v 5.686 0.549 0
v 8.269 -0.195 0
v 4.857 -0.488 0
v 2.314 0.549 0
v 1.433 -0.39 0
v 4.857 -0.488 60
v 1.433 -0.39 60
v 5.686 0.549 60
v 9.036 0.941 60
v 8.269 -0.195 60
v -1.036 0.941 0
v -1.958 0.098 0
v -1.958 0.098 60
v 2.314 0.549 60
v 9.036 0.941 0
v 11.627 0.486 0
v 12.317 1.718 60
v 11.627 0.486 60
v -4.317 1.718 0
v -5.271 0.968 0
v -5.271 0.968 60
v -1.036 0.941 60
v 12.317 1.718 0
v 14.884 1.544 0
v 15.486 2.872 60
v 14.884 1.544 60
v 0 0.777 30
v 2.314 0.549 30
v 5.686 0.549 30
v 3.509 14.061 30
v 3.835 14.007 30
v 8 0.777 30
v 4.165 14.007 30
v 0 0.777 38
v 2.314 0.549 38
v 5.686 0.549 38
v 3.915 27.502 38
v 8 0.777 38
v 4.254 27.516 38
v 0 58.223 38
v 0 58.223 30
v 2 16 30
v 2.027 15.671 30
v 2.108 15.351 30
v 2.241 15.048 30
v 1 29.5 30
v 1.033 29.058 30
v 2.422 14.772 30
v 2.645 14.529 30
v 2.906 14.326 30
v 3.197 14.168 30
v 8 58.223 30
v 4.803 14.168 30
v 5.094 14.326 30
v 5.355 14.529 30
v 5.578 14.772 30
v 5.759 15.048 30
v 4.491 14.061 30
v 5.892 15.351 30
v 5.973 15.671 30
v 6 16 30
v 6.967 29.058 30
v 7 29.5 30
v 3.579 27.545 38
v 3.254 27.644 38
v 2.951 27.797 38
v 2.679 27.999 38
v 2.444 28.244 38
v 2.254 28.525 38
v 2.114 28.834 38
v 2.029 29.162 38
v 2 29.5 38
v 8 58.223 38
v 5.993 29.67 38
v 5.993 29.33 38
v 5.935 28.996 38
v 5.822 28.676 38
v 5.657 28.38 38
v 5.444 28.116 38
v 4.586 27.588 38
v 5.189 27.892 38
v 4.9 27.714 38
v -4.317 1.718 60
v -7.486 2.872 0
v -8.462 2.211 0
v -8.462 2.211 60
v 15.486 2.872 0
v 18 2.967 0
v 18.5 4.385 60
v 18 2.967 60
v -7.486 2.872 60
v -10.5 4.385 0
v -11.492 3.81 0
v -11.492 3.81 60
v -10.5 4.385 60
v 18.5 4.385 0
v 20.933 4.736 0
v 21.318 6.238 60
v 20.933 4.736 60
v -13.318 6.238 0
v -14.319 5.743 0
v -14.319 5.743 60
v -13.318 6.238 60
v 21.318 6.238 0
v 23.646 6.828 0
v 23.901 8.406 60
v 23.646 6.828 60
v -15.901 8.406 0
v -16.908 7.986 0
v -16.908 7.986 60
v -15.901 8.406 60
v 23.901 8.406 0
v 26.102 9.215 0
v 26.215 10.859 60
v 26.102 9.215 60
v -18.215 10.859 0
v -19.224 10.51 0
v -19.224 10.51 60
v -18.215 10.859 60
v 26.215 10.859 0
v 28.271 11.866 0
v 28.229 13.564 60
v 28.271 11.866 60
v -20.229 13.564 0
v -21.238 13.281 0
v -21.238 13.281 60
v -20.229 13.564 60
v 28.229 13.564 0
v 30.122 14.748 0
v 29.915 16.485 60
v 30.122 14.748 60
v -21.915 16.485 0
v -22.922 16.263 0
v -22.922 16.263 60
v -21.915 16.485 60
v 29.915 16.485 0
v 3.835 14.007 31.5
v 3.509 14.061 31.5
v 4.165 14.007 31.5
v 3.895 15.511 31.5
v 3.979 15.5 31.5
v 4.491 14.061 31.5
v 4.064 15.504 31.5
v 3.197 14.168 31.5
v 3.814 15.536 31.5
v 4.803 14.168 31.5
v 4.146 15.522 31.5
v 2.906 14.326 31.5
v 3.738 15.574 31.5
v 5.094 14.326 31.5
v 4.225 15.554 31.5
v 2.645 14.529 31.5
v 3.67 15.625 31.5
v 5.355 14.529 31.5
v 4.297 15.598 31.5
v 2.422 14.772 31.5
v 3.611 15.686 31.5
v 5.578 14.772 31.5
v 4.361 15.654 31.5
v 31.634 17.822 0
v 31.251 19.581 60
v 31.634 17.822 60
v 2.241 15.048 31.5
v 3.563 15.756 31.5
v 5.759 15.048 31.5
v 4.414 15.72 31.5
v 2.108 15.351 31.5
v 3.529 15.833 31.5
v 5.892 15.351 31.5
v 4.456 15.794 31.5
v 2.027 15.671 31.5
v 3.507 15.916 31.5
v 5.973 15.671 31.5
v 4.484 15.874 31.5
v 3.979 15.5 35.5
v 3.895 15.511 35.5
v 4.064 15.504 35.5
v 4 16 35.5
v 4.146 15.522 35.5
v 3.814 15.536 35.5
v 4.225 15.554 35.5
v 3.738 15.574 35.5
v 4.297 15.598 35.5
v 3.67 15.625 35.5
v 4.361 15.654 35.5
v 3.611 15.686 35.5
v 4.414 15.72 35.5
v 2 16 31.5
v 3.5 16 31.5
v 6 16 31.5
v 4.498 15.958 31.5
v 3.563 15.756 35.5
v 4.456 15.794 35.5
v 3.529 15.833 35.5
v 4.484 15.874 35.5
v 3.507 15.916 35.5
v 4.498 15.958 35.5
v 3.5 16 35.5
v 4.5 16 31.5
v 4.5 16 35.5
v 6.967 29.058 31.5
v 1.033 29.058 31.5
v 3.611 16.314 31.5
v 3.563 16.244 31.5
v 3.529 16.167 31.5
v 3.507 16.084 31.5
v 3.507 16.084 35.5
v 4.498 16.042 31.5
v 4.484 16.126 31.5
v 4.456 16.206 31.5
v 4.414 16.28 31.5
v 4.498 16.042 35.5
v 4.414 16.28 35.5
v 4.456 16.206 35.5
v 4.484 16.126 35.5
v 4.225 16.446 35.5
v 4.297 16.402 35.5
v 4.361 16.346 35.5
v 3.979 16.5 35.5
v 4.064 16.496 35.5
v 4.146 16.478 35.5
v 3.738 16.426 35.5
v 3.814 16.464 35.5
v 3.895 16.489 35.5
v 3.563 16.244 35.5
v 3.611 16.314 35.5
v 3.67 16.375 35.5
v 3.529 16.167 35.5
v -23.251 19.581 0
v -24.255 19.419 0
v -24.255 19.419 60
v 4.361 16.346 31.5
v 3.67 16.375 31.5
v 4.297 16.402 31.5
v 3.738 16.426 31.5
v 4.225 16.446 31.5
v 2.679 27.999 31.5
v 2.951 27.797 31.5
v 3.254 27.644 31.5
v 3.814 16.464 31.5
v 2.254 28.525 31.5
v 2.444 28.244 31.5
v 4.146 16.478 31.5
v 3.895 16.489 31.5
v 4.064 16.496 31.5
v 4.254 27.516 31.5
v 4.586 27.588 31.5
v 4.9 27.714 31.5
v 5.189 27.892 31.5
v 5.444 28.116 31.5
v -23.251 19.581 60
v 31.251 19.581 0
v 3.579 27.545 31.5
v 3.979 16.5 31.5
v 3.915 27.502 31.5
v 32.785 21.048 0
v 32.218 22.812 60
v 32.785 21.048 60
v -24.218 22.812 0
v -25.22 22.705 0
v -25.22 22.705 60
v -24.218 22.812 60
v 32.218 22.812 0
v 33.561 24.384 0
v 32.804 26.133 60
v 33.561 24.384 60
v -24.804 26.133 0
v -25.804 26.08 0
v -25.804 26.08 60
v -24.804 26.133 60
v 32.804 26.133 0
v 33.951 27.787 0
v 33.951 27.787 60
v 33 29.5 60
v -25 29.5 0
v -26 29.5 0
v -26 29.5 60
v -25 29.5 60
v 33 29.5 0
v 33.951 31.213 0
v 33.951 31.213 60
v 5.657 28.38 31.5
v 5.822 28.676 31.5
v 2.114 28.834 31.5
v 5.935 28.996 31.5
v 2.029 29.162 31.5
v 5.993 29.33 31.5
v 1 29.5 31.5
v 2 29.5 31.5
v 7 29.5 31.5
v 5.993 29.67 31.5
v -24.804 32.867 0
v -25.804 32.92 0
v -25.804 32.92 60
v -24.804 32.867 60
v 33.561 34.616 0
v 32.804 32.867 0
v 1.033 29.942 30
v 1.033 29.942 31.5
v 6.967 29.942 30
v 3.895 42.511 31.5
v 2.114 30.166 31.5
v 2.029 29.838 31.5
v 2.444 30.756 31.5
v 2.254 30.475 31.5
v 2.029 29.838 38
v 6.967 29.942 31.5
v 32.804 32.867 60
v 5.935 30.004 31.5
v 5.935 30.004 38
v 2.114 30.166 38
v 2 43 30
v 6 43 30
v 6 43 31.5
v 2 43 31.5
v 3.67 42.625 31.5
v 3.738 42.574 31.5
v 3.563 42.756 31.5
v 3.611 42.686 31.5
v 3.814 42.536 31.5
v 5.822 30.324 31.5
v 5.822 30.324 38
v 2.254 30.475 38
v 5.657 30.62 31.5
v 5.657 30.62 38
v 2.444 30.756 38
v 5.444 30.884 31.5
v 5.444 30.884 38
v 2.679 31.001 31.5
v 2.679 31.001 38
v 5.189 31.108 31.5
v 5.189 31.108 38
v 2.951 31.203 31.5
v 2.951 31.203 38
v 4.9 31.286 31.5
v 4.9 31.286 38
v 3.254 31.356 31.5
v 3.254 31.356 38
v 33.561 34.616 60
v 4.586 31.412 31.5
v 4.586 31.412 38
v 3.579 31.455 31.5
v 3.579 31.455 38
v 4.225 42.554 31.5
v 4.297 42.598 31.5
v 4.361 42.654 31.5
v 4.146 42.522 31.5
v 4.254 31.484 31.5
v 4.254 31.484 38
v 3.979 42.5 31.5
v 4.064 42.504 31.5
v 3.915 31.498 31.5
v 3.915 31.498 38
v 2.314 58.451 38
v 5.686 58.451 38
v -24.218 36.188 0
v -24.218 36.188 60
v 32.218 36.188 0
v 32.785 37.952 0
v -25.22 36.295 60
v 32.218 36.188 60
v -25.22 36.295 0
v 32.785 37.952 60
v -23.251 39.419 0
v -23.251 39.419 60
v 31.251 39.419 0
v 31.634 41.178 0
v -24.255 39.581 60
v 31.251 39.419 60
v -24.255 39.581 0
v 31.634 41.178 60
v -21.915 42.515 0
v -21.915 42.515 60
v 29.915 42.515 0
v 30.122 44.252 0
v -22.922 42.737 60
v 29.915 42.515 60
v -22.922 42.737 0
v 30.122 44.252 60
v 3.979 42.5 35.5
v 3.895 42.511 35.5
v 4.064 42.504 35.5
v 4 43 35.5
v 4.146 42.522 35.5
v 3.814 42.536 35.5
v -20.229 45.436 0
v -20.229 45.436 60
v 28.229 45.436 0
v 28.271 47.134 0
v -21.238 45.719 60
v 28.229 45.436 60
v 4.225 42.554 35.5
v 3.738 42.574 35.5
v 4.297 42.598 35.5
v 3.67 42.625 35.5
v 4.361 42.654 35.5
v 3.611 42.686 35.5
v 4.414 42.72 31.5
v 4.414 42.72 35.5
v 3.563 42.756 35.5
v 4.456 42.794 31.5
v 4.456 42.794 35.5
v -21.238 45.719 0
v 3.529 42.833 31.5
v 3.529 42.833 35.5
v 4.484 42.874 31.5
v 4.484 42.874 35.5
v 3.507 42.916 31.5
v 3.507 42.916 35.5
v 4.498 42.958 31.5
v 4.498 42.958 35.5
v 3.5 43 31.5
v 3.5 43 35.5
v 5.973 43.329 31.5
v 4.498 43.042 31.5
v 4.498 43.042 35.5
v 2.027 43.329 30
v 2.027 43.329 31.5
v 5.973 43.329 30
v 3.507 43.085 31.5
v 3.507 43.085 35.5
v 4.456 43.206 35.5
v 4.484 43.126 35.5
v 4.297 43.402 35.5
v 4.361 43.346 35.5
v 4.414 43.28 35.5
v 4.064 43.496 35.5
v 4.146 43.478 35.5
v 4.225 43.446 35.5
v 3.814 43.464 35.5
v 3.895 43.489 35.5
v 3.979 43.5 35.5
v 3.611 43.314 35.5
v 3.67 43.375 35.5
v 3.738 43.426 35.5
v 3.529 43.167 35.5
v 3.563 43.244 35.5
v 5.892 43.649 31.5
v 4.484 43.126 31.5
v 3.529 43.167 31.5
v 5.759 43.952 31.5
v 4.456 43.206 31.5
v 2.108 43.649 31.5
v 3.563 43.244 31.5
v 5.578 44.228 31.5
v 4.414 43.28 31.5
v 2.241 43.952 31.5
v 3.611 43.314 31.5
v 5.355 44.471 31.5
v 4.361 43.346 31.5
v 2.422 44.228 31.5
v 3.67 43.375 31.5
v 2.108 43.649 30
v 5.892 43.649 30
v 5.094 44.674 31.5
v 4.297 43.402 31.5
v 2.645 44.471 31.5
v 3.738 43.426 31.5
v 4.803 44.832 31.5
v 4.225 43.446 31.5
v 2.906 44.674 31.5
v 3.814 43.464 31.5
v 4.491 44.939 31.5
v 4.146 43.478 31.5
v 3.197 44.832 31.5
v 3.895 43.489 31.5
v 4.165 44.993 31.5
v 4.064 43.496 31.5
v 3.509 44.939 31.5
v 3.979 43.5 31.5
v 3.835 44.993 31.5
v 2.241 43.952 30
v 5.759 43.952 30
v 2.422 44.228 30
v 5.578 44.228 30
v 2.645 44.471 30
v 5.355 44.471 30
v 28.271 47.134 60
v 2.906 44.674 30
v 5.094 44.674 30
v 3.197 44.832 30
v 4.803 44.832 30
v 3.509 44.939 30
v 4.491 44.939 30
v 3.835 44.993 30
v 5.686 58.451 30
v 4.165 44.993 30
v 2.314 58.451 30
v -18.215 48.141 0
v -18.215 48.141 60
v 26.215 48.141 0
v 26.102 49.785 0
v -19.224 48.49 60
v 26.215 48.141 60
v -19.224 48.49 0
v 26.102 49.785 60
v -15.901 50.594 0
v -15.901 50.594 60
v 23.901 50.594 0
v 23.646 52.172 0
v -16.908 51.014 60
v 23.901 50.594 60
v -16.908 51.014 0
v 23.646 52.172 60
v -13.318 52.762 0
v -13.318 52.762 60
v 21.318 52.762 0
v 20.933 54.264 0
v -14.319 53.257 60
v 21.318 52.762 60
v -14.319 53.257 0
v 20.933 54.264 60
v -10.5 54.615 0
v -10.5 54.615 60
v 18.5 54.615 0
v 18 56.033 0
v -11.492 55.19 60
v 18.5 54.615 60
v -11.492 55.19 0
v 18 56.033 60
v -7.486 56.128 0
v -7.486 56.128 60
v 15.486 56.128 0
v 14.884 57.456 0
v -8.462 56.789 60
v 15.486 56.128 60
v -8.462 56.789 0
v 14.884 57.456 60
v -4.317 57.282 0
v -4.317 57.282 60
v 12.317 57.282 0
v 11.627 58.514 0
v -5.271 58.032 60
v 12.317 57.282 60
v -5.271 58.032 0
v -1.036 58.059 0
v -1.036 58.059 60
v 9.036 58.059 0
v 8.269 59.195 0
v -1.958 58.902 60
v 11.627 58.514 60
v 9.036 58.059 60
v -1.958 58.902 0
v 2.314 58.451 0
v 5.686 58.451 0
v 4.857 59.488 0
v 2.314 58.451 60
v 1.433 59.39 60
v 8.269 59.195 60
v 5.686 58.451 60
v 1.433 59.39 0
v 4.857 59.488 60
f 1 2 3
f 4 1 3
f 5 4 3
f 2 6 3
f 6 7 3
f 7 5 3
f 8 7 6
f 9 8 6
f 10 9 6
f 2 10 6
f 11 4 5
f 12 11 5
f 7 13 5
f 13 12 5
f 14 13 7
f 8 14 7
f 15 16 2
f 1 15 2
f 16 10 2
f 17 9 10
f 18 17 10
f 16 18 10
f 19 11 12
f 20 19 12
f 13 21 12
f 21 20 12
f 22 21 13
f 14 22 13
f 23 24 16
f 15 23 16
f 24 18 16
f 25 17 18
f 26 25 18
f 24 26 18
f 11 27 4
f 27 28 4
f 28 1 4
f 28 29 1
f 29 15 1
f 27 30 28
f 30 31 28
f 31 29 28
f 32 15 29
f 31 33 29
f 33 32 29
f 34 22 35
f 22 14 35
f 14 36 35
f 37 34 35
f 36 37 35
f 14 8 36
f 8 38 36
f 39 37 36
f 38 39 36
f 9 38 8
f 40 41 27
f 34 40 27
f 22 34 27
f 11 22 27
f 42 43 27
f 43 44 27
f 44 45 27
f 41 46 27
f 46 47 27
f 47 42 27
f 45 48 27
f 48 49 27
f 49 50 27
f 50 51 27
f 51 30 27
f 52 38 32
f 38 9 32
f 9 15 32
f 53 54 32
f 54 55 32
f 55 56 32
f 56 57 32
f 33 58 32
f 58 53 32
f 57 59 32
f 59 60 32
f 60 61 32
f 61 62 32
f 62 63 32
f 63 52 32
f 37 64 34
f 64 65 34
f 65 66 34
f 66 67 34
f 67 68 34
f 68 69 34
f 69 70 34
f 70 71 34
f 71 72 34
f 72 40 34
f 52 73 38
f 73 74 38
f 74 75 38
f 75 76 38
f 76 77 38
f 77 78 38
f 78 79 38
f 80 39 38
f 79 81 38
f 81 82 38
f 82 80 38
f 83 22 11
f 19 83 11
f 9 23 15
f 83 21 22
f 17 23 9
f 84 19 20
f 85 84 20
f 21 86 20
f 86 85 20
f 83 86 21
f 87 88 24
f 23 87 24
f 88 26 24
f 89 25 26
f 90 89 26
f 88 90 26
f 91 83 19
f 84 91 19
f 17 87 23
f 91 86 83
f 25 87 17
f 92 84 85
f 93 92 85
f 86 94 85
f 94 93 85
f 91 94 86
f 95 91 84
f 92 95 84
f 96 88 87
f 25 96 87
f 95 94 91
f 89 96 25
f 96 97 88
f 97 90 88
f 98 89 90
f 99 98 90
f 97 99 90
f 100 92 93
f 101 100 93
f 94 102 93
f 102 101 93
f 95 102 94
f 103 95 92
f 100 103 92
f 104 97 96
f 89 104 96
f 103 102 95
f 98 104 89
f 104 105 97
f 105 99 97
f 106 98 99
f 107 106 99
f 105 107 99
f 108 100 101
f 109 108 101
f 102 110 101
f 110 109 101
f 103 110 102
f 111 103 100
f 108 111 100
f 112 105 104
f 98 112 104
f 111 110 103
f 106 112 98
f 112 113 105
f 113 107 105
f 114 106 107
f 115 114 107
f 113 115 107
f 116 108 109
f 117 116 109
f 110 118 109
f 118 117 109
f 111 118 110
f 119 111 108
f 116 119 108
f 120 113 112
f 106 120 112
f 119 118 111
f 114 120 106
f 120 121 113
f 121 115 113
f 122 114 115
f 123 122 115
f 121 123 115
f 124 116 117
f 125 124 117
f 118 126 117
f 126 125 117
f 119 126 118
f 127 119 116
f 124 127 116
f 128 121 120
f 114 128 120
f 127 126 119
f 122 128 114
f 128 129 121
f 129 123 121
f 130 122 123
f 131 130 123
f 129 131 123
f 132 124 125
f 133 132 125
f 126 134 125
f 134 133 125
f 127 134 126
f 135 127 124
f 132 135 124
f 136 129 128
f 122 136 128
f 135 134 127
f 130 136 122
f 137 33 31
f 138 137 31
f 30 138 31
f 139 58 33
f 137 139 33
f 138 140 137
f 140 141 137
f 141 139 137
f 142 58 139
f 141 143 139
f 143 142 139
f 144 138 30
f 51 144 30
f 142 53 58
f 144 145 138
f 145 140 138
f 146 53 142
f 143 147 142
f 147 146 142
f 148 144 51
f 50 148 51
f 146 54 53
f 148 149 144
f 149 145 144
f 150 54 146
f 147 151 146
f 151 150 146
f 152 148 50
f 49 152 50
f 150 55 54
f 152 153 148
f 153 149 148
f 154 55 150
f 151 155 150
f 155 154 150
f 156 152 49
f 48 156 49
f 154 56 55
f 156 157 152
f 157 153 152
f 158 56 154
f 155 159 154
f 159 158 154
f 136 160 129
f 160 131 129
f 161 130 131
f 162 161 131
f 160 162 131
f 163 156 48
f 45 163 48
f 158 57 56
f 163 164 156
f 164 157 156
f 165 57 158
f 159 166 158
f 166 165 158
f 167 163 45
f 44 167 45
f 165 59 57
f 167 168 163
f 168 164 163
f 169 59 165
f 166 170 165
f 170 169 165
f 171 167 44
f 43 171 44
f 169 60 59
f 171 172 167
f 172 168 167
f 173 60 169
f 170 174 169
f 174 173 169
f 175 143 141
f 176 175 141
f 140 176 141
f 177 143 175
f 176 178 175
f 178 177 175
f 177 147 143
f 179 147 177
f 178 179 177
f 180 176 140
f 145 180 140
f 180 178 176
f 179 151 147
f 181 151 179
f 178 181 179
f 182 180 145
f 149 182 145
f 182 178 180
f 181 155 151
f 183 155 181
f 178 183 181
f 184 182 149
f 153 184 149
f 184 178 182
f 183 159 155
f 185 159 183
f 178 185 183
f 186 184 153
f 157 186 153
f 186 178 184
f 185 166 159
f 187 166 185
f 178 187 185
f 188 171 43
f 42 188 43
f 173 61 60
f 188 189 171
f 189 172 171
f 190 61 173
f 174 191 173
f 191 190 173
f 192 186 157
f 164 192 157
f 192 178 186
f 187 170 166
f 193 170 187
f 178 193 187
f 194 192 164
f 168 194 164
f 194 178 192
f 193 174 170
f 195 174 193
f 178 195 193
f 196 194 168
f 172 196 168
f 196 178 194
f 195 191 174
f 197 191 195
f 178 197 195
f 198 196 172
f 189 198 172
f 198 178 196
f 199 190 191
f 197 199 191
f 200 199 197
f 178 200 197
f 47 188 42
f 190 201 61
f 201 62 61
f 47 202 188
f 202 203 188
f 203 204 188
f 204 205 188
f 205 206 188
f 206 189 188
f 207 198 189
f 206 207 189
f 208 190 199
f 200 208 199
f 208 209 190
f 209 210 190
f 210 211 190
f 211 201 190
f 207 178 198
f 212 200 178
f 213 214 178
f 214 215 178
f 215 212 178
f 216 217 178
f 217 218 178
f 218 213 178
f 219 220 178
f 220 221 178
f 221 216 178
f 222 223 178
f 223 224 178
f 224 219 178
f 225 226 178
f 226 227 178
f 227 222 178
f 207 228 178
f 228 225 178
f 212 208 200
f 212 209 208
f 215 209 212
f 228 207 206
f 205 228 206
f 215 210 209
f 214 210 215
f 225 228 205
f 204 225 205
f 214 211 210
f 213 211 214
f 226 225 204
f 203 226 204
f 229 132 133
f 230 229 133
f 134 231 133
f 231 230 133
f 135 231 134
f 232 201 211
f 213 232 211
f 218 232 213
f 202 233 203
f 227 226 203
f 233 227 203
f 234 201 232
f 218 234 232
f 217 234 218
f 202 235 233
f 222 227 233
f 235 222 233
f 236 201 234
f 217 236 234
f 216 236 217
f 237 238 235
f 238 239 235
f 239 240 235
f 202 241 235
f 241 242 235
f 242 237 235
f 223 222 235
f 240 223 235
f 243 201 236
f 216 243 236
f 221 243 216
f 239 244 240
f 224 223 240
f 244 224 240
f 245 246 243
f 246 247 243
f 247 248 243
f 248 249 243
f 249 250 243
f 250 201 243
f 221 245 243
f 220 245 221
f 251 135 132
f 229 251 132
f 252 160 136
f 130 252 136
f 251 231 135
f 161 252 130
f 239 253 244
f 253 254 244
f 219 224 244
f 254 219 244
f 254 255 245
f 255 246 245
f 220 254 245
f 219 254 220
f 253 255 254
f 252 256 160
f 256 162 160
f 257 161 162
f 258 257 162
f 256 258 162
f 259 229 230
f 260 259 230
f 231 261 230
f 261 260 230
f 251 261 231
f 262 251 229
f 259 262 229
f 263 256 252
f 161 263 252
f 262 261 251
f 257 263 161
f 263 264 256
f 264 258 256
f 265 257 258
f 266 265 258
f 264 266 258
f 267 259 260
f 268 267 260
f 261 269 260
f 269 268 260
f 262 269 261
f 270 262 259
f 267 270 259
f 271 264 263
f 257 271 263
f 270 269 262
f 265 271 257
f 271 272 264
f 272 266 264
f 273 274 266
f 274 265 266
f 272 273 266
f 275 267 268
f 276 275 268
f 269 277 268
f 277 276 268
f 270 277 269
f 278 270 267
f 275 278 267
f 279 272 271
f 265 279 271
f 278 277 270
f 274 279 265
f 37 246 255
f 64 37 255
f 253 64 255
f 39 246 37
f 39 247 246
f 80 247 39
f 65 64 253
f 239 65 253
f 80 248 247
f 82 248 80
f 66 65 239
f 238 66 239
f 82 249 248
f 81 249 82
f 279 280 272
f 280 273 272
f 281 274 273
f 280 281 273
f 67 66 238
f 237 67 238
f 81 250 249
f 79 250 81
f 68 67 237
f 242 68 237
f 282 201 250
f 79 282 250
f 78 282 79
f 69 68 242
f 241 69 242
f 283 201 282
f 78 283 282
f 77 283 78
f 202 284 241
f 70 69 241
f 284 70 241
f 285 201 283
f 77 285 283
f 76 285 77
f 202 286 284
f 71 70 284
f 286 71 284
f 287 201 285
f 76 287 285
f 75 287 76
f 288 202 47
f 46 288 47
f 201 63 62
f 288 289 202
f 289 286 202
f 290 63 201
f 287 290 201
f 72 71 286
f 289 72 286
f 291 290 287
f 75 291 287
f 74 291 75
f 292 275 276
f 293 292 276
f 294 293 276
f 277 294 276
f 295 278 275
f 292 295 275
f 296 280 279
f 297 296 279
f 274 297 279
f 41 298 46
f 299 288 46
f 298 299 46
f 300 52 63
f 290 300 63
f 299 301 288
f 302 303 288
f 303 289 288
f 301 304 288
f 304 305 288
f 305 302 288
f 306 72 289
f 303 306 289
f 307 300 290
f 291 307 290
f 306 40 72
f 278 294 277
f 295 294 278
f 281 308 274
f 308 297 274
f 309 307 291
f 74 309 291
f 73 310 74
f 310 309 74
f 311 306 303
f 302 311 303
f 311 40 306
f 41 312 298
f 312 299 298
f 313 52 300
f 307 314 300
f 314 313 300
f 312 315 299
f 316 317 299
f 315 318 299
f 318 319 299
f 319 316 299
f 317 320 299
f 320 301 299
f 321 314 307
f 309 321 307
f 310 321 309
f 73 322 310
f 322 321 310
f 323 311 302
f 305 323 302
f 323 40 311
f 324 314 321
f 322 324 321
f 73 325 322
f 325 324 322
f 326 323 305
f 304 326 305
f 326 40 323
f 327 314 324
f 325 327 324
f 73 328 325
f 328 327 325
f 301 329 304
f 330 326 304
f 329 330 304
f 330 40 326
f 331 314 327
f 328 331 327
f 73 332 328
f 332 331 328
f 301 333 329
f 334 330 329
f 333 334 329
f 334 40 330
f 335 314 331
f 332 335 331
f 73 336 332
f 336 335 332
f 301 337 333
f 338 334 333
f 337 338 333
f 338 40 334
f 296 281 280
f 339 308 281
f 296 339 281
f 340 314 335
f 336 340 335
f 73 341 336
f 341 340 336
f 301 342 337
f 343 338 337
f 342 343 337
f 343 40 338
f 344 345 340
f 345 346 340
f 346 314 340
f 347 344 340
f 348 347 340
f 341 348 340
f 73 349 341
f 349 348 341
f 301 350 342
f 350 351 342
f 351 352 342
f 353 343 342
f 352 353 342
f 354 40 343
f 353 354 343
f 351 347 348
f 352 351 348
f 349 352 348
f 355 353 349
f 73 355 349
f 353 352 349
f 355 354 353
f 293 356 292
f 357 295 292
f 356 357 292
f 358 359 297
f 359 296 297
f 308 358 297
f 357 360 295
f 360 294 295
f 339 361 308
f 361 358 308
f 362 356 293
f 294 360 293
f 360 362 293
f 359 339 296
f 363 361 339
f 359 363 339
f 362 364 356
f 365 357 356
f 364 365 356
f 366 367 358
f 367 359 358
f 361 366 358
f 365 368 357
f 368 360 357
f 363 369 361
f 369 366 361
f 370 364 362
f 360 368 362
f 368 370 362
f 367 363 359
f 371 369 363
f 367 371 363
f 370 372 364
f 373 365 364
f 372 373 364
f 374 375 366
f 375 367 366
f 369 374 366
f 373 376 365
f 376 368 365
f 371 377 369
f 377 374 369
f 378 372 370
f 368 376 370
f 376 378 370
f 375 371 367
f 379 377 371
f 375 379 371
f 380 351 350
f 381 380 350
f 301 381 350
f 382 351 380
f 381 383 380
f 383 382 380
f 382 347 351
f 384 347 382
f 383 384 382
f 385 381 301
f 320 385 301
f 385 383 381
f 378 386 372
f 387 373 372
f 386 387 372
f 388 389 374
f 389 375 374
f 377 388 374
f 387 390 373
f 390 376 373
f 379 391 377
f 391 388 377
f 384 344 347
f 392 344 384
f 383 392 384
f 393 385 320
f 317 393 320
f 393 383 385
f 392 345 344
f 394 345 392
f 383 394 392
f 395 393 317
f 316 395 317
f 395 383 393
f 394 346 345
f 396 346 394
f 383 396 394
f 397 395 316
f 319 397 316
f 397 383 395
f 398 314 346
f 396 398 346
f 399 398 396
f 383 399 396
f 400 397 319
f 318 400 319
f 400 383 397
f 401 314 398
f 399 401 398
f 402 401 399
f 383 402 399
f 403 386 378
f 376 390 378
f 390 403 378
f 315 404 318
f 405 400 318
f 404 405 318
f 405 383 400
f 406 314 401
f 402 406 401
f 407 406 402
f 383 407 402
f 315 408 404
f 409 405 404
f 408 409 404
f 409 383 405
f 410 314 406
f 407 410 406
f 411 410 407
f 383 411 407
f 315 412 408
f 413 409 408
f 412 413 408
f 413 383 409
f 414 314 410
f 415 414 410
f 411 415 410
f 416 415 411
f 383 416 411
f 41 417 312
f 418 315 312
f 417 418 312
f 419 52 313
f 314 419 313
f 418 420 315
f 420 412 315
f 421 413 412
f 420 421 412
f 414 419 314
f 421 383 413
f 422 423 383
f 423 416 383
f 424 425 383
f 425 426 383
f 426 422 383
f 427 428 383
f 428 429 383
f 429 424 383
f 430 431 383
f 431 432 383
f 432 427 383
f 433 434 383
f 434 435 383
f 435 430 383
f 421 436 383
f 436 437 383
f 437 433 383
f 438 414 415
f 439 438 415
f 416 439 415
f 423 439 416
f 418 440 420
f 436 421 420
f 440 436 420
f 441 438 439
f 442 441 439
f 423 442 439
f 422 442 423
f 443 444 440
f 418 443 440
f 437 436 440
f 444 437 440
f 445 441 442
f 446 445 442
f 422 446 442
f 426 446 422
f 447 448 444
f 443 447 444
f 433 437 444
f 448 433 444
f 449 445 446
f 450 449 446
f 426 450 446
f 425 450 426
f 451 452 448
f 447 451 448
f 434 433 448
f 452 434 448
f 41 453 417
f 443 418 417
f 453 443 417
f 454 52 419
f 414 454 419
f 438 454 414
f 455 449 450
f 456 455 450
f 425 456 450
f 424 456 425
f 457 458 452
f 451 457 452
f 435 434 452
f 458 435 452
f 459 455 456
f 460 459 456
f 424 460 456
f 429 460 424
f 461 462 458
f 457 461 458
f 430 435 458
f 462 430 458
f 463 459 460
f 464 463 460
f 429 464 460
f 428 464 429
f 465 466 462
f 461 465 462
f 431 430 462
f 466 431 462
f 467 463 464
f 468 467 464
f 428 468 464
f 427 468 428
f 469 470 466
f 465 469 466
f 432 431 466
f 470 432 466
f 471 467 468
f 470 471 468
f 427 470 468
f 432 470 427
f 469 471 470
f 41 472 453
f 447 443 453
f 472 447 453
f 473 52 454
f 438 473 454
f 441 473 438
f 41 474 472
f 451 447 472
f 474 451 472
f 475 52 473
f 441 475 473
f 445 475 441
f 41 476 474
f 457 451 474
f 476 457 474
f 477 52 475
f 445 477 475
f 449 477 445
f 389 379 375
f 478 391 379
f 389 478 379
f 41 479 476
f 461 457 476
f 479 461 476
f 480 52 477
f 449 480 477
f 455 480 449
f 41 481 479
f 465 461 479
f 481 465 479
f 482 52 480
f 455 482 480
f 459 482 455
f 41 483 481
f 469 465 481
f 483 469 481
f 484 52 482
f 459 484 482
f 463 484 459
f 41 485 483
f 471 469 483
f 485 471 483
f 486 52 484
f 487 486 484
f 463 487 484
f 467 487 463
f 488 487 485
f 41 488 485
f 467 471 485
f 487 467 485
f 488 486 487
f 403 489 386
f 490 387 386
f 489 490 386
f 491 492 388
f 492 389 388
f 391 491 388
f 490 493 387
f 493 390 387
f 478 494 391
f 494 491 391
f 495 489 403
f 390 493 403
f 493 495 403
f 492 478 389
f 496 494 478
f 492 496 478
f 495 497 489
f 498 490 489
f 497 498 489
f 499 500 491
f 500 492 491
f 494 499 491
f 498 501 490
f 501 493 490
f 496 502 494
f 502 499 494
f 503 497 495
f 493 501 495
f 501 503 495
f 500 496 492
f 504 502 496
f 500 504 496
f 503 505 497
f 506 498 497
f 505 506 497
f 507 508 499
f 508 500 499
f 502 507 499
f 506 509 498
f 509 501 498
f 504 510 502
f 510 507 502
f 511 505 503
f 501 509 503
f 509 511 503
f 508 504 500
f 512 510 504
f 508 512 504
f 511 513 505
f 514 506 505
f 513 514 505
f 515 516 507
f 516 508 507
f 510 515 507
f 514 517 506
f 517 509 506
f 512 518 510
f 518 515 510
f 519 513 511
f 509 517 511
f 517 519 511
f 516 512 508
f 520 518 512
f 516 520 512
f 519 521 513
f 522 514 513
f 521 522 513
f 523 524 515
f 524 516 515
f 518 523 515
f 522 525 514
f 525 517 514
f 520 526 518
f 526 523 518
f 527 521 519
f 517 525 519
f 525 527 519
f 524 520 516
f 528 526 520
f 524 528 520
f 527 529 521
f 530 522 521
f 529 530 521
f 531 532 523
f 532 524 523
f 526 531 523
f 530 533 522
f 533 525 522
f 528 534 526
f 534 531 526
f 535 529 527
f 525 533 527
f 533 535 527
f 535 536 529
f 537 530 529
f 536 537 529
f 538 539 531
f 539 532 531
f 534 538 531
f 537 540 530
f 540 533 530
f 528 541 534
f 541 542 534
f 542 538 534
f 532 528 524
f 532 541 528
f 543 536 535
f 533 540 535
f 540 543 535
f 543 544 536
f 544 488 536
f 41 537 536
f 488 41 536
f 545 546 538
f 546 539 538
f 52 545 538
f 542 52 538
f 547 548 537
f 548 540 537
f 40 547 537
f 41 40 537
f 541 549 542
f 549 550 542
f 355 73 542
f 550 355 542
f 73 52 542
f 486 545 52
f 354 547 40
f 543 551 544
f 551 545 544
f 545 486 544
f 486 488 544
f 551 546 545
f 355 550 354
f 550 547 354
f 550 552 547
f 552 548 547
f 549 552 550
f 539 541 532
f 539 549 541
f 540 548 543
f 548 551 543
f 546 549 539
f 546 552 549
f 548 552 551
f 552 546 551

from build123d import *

# Parameters (mm, degrees)
ESQUISSE1_W             = 8
ESQUISSE1_H             = 59
BOSS_EXTRU_1_DEPTH      = 60
ESQUISSE3_R             = 30
ESQUISSE3_R_2           = 29
BOSS_EXTRU_2_DEPTH      = 60
ESQUISSE4_R             = 29
ENL_V_MAT_EXTRU_3_DEPTH = 30
ENL_V_MAT_EXTRU_5_DEPTH = 1.5
ESQUISSE6_R             = 29
ENL_V_MAT_EXTRU_6_DEPTH = 22
ESQUISSE7_R             = 2
ENL_V_MAT_EXTRU_7_DEPTH = 6.5
ESQUISSE9_R             = 0.5
ENL_V_MAT_EXTRU_8_DEPTH = 4


with BuildPart() as part:
    # Esquisse1 → Boss.-Extru.1 (new body)
    with BuildSketch(Plane.XY):
        with Locations((4, 29.5)):
            Rectangle(ESQUISSE1_W, ESQUISSE1_H)
    extrude(amount=BOSS_EXTRU_1_DEPTH)

    # Esquisse3 → Boss.-Extru.2 (add)
    with BuildSketch(Plane(origin=(0, 0, 0), x_dir=(-1, 0, 0), z_dir=(0, 0, -1))):
        with Locations((-4, 29.5)):
            Circle(ESQUISSE3_R)
        with Locations((-4, 29.5)):
            Circle(ESQUISSE3_R_2, mode=Mode.SUBTRACT)
    extrude(amount=-BOSS_EXTRU_2_DEPTH)

    # Esquisse4 → Enlèv. mat.-Extru.3 (cut)
    with BuildSketch(Plane(origin=(0, 0, 0), x_dir=(-1, 0, 0), z_dir=(0, 0, -1))):
        with Locations((-4, 29.5)):
            Circle(ESQUISSE4_R)
    extrude(amount=-ENL_V_MAT_EXTRU_3_DEPTH, mode=Mode.SUBTRACT)

    # Esquisse5 → Enlèv. mat.-Extru.5 (cut)
    with BuildSketch(Plane(origin=(0, 0, 30), x_dir=(-1, 0, 0), z_dir=(0, 0, -1))):
        with BuildLine():
            Line((-6, 43), (-6.967257844, 29.9420191))
            ThreePointArc((-6.967257844, 29.9420191), (-7, 29.5), (-6.967257844, 29.0579809))
            Line((-6.967257844, 29.0579809), (-6, 16))
            ThreePointArc((-6, 16), (-4, 14), (-2, 16))
            Line((-2, 16), (-1.032742156, 29.0579809))
            ThreePointArc((-1.032742156, 29.0579809), (-1, 29.5), (-1.032742156, 29.9420191))
            Line((-1.032742156, 29.9420191), (-2, 43))
            ThreePointArc((-2, 43), (-4, 45), (-6, 43))
        make_face()
    extrude(amount=-ENL_V_MAT_EXTRU_5_DEPTH, mode=Mode.SUBTRACT)

    # Esquisse6 → Enlèv. mat.-Extru.6 (cut)
    with BuildSketch(Plane.XY.offset(60)):
        with Locations((4, 29.5)):
            Circle(ESQUISSE6_R)
    extrude(amount=-ENL_V_MAT_EXTRU_6_DEPTH, mode=Mode.SUBTRACT)

    # Esquisse7 → Enlèv. mat.-Extru.7 (cut)
    with BuildSketch(Plane(origin=(0, 0, 31.5), x_dir=(-1, 0, 0), z_dir=(0, 0, -1))):
        with Locations((-4, 29.5)):
            Circle(ESQUISSE7_R)
    extrude(amount=-ENL_V_MAT_EXTRU_7_DEPTH, mode=Mode.SUBTRACT)

    # Esquisse9 → Enlèv. mat.-Extru.8 (cut)
    with BuildSketch(Plane(origin=(0, 0, 31.5), x_dir=(-1, 0, 0), z_dir=(0, 0, -1))):
        with Locations((-4, 43)):
            Circle(ESQUISSE9_R)
        with Locations((-4, 16)):
            Circle(ESQUISSE9_R)
    extrude(amount=-ENL_V_MAT_EXTRU_8_DEPTH, mode=Mode.SUBTRACT)


solid = part.part
